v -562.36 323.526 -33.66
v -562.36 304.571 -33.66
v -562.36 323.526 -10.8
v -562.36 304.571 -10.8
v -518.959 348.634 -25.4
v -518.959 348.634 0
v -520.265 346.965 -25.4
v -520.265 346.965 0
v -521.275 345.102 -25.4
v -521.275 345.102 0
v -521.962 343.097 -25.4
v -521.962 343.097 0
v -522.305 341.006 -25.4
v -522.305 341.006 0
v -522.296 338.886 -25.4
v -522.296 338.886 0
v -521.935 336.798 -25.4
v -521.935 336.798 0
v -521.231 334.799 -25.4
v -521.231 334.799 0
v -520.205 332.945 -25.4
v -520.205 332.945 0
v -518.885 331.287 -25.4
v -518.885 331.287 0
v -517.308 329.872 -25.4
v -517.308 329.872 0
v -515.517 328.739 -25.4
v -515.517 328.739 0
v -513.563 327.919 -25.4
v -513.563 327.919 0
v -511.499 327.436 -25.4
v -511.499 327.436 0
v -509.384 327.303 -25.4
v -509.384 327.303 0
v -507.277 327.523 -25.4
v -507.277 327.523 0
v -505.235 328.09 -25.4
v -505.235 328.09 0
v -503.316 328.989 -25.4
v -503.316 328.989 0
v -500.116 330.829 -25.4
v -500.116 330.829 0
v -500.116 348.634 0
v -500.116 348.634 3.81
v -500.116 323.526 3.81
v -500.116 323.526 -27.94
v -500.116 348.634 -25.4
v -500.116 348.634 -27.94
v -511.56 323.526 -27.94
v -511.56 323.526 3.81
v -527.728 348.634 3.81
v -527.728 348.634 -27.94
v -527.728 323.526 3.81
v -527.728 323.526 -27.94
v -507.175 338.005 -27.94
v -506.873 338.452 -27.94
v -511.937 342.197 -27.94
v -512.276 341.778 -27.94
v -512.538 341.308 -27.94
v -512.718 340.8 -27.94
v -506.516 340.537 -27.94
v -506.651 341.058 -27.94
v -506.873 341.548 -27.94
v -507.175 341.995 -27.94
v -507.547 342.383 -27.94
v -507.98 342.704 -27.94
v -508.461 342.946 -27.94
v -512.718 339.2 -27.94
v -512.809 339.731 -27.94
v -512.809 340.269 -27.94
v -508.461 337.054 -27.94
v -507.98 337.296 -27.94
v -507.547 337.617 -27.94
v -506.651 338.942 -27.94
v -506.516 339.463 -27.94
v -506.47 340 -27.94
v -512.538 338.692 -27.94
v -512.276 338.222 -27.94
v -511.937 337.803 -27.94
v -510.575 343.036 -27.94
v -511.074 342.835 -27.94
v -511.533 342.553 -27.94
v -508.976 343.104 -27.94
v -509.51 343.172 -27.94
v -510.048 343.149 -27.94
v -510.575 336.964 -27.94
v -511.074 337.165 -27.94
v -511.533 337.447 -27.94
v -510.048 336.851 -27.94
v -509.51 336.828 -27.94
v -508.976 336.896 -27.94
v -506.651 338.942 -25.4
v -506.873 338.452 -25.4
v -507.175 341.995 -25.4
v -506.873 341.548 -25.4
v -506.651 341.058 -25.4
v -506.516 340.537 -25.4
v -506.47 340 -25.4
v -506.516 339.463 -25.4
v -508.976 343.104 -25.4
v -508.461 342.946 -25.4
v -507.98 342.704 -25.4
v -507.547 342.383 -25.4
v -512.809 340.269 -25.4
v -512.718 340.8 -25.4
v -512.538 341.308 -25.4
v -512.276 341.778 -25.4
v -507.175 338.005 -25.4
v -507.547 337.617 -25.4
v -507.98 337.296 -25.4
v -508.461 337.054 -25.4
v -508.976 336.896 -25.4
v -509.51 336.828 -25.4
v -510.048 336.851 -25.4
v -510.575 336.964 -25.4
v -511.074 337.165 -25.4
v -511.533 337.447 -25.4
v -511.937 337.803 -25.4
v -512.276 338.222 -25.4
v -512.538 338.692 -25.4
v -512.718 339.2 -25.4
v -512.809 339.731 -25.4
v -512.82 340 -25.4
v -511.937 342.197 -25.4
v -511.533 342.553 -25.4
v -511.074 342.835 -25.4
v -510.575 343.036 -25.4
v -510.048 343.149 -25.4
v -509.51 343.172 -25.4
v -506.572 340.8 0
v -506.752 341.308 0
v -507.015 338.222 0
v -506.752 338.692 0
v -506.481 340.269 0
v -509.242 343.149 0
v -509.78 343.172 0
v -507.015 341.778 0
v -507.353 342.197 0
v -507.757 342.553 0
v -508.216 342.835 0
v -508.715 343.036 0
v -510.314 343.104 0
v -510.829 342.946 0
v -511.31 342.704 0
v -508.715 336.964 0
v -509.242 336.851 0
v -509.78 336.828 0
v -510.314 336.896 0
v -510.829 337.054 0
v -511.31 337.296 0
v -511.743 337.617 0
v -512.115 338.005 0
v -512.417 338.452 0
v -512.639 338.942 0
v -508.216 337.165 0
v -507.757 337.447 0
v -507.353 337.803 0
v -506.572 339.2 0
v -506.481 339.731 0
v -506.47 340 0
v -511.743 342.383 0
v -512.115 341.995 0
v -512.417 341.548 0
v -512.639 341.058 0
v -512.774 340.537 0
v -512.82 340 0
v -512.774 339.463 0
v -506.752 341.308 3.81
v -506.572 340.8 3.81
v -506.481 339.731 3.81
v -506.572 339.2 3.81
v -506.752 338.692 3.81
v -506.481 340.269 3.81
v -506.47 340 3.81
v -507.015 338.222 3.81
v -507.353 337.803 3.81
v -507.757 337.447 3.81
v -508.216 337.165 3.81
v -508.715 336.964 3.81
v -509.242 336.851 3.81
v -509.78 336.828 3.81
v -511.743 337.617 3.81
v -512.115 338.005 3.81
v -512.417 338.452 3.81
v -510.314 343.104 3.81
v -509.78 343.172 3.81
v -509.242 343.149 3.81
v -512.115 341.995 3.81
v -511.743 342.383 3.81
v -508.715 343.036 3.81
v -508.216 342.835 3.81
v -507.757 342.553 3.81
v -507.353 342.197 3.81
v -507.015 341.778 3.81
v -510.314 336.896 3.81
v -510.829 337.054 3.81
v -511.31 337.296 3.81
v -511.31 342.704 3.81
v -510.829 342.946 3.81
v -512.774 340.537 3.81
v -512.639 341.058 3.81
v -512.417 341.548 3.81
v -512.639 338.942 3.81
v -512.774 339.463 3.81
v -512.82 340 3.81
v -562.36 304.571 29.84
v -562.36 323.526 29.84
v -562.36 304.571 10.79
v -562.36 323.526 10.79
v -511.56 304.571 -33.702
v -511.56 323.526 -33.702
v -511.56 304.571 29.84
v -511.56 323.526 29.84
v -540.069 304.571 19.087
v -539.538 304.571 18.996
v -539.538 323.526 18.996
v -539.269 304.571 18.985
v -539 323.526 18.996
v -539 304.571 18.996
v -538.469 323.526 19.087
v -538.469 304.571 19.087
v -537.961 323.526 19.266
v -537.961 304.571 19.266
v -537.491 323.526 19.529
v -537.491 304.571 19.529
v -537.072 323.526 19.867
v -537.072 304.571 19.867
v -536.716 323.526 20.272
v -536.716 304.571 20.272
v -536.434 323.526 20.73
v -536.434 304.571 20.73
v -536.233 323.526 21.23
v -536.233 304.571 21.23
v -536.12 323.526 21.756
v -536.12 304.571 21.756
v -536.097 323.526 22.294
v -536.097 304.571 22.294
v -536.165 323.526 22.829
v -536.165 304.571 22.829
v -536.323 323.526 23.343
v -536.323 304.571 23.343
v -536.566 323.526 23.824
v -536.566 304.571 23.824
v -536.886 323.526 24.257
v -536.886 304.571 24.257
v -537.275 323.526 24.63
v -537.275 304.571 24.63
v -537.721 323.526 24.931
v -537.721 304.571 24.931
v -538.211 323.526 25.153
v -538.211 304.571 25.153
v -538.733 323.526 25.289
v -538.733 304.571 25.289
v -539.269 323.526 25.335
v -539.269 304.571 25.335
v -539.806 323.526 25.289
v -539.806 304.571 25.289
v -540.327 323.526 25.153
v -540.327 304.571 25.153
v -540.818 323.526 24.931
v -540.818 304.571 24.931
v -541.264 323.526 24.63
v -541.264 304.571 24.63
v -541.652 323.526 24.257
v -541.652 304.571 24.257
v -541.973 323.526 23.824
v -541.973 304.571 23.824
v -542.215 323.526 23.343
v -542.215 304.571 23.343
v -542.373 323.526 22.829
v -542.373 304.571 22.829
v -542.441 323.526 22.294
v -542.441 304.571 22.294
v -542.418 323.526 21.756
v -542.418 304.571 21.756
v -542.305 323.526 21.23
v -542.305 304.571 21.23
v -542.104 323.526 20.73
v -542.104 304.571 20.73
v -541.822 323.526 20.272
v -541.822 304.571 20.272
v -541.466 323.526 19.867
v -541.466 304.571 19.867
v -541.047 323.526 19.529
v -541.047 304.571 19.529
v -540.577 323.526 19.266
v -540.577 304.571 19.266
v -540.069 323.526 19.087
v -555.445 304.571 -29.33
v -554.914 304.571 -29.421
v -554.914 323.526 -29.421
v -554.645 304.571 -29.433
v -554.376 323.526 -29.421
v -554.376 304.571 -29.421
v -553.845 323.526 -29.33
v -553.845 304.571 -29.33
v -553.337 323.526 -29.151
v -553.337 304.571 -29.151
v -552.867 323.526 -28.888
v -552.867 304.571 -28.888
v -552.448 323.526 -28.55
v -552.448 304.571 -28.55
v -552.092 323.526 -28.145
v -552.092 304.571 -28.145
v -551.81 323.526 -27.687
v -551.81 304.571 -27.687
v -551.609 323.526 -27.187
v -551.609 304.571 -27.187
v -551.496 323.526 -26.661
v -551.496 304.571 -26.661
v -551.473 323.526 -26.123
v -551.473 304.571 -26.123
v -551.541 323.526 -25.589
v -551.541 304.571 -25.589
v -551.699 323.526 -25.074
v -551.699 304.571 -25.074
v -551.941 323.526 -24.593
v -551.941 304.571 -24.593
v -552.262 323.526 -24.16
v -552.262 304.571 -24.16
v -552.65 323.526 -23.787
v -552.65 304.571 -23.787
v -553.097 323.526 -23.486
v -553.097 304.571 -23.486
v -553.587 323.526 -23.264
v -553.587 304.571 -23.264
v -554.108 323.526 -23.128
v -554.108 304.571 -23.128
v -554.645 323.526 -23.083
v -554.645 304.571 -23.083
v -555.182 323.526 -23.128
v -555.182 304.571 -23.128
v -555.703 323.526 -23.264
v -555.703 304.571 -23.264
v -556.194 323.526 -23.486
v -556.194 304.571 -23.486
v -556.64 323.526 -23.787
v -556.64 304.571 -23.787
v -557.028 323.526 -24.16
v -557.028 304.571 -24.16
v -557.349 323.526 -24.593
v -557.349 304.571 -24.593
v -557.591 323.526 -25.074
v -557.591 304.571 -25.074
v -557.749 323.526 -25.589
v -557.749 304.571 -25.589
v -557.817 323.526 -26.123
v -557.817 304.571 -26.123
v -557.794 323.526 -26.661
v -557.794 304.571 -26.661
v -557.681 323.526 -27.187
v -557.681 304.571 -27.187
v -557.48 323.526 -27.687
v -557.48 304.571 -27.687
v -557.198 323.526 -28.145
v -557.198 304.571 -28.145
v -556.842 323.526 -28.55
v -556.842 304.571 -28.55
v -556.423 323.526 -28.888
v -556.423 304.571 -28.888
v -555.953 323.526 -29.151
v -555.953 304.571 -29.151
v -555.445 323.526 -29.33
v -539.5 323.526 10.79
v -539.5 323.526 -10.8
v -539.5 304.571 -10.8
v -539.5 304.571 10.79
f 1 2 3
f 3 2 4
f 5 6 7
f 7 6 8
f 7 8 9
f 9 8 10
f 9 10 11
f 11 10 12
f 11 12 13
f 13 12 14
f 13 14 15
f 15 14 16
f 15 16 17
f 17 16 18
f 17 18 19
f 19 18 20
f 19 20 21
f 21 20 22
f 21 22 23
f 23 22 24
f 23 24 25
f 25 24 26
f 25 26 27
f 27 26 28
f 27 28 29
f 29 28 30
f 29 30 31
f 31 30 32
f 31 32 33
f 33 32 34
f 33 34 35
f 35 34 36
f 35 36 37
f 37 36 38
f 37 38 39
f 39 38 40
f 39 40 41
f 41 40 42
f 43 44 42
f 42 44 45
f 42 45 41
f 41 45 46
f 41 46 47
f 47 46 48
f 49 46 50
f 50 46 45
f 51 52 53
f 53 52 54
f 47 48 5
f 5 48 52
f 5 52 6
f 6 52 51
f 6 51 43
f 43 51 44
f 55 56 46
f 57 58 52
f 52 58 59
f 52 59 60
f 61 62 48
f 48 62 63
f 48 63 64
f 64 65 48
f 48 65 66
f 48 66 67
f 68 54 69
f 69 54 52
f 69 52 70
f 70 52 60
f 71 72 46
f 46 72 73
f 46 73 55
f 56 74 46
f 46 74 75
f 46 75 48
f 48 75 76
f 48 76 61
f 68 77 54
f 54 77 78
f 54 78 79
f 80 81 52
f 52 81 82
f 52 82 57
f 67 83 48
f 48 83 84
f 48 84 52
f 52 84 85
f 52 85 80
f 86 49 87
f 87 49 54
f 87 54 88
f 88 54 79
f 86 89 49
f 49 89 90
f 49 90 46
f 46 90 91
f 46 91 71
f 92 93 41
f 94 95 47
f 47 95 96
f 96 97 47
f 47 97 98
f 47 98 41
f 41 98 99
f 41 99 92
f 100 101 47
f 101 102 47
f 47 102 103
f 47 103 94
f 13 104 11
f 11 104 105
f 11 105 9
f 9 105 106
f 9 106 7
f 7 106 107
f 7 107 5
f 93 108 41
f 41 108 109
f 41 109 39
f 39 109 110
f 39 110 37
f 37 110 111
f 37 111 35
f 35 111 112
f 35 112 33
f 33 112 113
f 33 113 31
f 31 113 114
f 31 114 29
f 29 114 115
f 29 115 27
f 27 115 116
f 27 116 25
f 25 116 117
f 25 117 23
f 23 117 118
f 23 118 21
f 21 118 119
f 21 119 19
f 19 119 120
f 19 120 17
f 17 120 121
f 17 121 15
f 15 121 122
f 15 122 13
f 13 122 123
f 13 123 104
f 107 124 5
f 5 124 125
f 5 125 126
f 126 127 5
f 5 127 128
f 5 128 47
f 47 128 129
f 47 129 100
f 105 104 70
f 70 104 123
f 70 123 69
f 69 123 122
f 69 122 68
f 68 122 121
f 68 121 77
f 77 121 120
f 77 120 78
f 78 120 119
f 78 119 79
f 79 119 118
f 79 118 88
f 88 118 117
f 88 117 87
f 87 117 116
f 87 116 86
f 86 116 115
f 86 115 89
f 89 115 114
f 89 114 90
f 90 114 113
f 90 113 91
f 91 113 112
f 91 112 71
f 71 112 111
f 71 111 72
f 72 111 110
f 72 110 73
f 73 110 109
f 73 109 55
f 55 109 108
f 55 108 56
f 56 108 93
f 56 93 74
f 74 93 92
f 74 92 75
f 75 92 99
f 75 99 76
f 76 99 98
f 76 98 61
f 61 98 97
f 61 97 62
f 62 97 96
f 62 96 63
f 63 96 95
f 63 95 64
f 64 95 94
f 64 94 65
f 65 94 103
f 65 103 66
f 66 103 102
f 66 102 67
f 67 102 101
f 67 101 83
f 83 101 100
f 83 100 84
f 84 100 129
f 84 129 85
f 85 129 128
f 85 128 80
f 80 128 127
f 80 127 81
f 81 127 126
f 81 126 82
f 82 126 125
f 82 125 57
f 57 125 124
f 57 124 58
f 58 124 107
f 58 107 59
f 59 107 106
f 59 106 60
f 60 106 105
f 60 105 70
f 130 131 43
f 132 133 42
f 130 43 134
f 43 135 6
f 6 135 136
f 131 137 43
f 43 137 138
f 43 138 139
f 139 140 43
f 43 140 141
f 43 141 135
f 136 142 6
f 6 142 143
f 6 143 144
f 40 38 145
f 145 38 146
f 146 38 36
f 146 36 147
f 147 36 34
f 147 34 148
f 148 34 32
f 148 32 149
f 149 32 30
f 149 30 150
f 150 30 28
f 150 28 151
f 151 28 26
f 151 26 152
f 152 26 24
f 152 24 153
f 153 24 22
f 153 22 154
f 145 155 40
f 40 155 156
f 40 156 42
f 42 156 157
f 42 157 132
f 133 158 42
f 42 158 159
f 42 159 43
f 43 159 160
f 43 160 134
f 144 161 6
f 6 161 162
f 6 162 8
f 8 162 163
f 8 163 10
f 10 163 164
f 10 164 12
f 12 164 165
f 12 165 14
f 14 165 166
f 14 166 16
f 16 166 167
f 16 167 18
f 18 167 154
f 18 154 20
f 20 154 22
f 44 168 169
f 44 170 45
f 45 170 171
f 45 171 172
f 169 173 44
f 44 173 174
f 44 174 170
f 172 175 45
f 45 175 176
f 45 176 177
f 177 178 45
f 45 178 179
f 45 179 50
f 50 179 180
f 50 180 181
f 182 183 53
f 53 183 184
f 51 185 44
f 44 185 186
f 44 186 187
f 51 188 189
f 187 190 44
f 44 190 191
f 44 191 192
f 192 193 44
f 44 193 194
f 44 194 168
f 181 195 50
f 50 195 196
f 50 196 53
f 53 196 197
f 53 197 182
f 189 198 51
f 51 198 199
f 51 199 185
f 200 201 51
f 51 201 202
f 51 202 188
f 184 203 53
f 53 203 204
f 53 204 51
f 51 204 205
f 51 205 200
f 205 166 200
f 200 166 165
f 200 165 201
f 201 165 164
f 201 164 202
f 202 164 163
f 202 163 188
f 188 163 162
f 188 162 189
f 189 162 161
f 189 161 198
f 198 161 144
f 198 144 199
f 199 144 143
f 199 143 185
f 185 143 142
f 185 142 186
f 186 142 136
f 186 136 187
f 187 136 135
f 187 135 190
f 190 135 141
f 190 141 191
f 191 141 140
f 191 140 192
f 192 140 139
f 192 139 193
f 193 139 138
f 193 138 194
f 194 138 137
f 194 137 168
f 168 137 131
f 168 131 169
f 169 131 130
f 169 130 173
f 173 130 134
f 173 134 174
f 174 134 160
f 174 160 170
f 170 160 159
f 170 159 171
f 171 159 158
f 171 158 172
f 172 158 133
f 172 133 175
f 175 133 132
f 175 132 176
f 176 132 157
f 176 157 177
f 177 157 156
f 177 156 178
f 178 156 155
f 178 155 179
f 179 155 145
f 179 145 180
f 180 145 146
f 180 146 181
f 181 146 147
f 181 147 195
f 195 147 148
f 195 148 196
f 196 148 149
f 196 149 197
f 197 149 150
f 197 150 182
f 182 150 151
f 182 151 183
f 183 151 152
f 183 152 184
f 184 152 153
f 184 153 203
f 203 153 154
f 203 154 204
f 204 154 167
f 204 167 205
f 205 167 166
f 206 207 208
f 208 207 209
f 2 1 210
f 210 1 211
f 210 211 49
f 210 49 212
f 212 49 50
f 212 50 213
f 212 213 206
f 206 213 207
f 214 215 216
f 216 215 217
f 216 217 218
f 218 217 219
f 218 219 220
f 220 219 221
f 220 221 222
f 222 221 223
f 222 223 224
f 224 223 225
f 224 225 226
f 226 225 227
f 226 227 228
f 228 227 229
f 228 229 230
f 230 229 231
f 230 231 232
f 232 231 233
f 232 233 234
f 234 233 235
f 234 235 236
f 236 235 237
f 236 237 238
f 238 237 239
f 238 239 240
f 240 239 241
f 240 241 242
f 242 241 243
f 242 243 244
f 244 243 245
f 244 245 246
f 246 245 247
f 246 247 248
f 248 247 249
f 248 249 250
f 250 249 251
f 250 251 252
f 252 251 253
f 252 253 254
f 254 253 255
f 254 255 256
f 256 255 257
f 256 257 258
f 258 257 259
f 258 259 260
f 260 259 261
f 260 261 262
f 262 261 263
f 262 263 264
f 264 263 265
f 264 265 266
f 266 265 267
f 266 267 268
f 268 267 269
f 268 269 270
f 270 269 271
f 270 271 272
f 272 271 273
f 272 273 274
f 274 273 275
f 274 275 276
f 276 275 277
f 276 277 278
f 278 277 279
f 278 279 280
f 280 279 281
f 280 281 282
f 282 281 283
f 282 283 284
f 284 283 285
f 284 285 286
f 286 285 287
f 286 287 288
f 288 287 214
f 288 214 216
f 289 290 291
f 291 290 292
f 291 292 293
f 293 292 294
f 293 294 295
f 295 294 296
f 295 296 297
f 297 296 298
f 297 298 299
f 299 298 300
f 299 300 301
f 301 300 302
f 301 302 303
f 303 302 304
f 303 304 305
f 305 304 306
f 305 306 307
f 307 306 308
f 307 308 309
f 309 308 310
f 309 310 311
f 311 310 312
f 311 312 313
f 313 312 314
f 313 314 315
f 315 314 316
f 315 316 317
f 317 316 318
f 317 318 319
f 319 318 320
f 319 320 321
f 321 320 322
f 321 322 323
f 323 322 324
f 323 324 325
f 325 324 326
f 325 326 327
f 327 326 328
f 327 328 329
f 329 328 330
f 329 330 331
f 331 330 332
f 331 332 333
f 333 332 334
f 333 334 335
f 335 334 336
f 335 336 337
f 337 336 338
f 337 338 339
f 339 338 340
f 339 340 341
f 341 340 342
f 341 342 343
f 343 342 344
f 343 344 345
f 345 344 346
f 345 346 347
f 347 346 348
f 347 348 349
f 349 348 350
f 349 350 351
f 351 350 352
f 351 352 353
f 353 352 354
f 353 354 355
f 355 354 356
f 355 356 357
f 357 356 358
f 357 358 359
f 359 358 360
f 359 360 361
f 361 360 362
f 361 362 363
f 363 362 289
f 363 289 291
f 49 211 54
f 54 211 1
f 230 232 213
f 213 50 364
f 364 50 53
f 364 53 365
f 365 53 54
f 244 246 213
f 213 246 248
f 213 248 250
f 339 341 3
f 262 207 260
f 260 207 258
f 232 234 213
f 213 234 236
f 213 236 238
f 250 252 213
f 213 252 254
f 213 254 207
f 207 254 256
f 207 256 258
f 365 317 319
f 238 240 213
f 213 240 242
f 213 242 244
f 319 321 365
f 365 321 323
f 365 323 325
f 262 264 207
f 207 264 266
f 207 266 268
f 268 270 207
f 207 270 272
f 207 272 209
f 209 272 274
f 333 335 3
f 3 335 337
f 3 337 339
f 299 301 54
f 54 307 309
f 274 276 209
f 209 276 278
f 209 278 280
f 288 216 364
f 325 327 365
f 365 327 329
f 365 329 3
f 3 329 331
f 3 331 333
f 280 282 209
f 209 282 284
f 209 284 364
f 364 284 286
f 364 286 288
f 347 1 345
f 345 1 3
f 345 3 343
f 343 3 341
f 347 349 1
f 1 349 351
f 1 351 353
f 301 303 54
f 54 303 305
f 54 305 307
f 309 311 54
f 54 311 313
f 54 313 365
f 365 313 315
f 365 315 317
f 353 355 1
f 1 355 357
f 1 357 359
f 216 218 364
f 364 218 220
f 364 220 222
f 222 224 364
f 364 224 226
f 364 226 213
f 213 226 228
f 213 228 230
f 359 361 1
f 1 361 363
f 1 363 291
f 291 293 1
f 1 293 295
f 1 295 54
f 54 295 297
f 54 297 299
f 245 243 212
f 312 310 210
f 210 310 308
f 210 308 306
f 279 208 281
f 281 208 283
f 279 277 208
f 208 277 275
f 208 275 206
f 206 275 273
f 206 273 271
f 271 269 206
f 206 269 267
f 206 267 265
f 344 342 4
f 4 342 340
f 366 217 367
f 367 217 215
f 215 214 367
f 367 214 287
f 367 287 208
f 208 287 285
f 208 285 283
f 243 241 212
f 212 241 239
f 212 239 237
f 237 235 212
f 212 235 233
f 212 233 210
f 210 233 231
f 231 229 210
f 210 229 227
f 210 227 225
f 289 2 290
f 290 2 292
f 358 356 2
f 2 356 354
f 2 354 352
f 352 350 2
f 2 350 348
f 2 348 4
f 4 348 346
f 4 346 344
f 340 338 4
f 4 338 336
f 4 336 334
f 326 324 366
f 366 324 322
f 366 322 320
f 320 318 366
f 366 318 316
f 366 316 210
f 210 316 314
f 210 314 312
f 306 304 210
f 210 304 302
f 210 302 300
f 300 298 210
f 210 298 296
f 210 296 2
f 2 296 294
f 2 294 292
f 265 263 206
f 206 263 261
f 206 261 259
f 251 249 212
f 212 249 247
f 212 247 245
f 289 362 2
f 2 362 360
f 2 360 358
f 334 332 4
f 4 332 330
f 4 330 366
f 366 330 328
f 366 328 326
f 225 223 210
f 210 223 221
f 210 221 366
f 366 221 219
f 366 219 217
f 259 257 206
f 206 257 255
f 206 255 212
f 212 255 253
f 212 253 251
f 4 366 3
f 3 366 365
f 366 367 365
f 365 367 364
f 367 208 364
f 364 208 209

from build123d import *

# Parameters (mm, degrees)
BOSS_EXTRUDE1_DEPTH = 27.94
SKETCH2_R           = 3.175
BOSS_EXTRUDE2_DEPTH = 2.54
BOSS_EXTRUDE3_START = 3.81
SKETCH3_W           = 27.611756562
SKETCH3_H           = 25.107614127
SKETCH3_R           = 3.175
BOSS_EXTRUDE3_DEPTH = 3.81
SKETCH4_R           = 3.175
BOSS_EXTRUDE4_DEPTH = 18.954575182
SKETCH5_W           = 22.86
SKETCH5_H           = 21.59
CUT_EXTRUDE1_DEPTH  = 564.927995542


with BuildPart() as part:
    # Sketch1 → Boss-Extrude1 (new body)
    with BuildSketch(Plane.XY):
        with BuildLine():
            Line((-518.959059009, 348.633589309), (-527.727560082, 348.633589309))
            Line((-527.727560082, 348.633589309), (-527.727560082, 323.525975182))
            Line((-527.727560082, 323.525975182), (-500.11580352, 323.525975182))
            Line((-500.11580352, 323.525975182), (-500.11580352, 330.828951218))
            Line((-500.11580352, 330.828951218), (-503.31589155, 328.989459324))
            ThreePointArc((-503.31589155, 328.989459324), (-505.910190066, 327.86159111), (-508.689794246, 327.335975182))
            ThreePointArc((-508.689794246, 327.335975182), (-520.655570716, 333.67086151), (-520.107560082, 347.198990562))
            ThreePointArc((-520.107560082, 347.198990562), (-519.559291988, 347.937090778), (-518.959059009, 348.633589309))
        make_face()
    extrude(amount=-BOSS_EXTRUDE1_DEPTH)

    # Sketch2 → Boss-Extrude2 (add)
    with BuildSketch(Plane(origin=(0, 0, -25.4), x_dir=(-1, 0, 0), z_dir=(0, 0, -1))):
        with BuildLine():
            Line((500.11580352, 330.828951218), (500.11580352, 348.633589309))
            Line((500.11580352, 348.633589309), (518.959059009, 348.633589309))
            ThreePointArc((518.959059009, 348.633589309), (519.579835197, 332.088638139), (503.31589155, 328.989459324))
            Line((503.31589155, 328.989459324), (500.11580352, 330.828951218))
        make_face()
        with Locations(Location((509.64503004, 340, 0), (0, 0, 180))):
            Circle(SKETCH2_R, mode=Mode.SUBTRACT)
    extrude(amount=BOSS_EXTRUDE2_DEPTH)

    # Sketch3 → Boss-Extrude3 (add)
    with BuildSketch(Plane.XY.offset(BOSS_EXTRUDE3_START)):
        with Locations((-513.921681801, 336.079782246)):
            Rectangle(SKETCH3_W, SKETCH3_H)
        with Locations((-509.64503004, 340)):
            Circle(SKETCH3_R, mode=Mode.SUBTRACT)
    extrude(amount=-BOSS_EXTRUDE3_DEPTH)

    # Sketch4 → Boss-Extrude4 (add)
    with BuildSketch(Plane(origin=(0, 323.525975182, 0), x_dir=(1, 0, 0), z_dir=(0, 1, 0))):
        Polygon((-562.359793246, 33.660212868), (-511.559810801, 33.702445144), (-511.559793246, -29.839787132), (-562.359793246, -29.839787132), align=None)
        with Locations(Location((-539.26913234, -22.159639935, 0), (0, 0, 270))):
            Circle(SKETCH4_R, mode=Mode.SUBTRACT)
        with Locations(Location((-554.645069674, 26.257511479, 0), (0, 0, 270))):
            Circle(SKETCH4_R, mode=Mode.SUBTRACT)
    extrude(amount=-BOSS_EXTRUDE4_DEPTH)

    # Sketch5 → Cut-Extrude1 (cut, through all)
    with BuildSketch(Plane(origin=(0, 323.525975182, 0), x_dir=(1, 0, 0), z_dir=(0, 1, 0))):
        with Locations((-550.929793246, 0.005212868)):
            Rectangle(SKETCH5_W, SKETCH5_H)
    extrude(amount=-CUT_EXTRUDE1_DEPTH, mode=Mode.SUBTRACT)


solid = part.part
